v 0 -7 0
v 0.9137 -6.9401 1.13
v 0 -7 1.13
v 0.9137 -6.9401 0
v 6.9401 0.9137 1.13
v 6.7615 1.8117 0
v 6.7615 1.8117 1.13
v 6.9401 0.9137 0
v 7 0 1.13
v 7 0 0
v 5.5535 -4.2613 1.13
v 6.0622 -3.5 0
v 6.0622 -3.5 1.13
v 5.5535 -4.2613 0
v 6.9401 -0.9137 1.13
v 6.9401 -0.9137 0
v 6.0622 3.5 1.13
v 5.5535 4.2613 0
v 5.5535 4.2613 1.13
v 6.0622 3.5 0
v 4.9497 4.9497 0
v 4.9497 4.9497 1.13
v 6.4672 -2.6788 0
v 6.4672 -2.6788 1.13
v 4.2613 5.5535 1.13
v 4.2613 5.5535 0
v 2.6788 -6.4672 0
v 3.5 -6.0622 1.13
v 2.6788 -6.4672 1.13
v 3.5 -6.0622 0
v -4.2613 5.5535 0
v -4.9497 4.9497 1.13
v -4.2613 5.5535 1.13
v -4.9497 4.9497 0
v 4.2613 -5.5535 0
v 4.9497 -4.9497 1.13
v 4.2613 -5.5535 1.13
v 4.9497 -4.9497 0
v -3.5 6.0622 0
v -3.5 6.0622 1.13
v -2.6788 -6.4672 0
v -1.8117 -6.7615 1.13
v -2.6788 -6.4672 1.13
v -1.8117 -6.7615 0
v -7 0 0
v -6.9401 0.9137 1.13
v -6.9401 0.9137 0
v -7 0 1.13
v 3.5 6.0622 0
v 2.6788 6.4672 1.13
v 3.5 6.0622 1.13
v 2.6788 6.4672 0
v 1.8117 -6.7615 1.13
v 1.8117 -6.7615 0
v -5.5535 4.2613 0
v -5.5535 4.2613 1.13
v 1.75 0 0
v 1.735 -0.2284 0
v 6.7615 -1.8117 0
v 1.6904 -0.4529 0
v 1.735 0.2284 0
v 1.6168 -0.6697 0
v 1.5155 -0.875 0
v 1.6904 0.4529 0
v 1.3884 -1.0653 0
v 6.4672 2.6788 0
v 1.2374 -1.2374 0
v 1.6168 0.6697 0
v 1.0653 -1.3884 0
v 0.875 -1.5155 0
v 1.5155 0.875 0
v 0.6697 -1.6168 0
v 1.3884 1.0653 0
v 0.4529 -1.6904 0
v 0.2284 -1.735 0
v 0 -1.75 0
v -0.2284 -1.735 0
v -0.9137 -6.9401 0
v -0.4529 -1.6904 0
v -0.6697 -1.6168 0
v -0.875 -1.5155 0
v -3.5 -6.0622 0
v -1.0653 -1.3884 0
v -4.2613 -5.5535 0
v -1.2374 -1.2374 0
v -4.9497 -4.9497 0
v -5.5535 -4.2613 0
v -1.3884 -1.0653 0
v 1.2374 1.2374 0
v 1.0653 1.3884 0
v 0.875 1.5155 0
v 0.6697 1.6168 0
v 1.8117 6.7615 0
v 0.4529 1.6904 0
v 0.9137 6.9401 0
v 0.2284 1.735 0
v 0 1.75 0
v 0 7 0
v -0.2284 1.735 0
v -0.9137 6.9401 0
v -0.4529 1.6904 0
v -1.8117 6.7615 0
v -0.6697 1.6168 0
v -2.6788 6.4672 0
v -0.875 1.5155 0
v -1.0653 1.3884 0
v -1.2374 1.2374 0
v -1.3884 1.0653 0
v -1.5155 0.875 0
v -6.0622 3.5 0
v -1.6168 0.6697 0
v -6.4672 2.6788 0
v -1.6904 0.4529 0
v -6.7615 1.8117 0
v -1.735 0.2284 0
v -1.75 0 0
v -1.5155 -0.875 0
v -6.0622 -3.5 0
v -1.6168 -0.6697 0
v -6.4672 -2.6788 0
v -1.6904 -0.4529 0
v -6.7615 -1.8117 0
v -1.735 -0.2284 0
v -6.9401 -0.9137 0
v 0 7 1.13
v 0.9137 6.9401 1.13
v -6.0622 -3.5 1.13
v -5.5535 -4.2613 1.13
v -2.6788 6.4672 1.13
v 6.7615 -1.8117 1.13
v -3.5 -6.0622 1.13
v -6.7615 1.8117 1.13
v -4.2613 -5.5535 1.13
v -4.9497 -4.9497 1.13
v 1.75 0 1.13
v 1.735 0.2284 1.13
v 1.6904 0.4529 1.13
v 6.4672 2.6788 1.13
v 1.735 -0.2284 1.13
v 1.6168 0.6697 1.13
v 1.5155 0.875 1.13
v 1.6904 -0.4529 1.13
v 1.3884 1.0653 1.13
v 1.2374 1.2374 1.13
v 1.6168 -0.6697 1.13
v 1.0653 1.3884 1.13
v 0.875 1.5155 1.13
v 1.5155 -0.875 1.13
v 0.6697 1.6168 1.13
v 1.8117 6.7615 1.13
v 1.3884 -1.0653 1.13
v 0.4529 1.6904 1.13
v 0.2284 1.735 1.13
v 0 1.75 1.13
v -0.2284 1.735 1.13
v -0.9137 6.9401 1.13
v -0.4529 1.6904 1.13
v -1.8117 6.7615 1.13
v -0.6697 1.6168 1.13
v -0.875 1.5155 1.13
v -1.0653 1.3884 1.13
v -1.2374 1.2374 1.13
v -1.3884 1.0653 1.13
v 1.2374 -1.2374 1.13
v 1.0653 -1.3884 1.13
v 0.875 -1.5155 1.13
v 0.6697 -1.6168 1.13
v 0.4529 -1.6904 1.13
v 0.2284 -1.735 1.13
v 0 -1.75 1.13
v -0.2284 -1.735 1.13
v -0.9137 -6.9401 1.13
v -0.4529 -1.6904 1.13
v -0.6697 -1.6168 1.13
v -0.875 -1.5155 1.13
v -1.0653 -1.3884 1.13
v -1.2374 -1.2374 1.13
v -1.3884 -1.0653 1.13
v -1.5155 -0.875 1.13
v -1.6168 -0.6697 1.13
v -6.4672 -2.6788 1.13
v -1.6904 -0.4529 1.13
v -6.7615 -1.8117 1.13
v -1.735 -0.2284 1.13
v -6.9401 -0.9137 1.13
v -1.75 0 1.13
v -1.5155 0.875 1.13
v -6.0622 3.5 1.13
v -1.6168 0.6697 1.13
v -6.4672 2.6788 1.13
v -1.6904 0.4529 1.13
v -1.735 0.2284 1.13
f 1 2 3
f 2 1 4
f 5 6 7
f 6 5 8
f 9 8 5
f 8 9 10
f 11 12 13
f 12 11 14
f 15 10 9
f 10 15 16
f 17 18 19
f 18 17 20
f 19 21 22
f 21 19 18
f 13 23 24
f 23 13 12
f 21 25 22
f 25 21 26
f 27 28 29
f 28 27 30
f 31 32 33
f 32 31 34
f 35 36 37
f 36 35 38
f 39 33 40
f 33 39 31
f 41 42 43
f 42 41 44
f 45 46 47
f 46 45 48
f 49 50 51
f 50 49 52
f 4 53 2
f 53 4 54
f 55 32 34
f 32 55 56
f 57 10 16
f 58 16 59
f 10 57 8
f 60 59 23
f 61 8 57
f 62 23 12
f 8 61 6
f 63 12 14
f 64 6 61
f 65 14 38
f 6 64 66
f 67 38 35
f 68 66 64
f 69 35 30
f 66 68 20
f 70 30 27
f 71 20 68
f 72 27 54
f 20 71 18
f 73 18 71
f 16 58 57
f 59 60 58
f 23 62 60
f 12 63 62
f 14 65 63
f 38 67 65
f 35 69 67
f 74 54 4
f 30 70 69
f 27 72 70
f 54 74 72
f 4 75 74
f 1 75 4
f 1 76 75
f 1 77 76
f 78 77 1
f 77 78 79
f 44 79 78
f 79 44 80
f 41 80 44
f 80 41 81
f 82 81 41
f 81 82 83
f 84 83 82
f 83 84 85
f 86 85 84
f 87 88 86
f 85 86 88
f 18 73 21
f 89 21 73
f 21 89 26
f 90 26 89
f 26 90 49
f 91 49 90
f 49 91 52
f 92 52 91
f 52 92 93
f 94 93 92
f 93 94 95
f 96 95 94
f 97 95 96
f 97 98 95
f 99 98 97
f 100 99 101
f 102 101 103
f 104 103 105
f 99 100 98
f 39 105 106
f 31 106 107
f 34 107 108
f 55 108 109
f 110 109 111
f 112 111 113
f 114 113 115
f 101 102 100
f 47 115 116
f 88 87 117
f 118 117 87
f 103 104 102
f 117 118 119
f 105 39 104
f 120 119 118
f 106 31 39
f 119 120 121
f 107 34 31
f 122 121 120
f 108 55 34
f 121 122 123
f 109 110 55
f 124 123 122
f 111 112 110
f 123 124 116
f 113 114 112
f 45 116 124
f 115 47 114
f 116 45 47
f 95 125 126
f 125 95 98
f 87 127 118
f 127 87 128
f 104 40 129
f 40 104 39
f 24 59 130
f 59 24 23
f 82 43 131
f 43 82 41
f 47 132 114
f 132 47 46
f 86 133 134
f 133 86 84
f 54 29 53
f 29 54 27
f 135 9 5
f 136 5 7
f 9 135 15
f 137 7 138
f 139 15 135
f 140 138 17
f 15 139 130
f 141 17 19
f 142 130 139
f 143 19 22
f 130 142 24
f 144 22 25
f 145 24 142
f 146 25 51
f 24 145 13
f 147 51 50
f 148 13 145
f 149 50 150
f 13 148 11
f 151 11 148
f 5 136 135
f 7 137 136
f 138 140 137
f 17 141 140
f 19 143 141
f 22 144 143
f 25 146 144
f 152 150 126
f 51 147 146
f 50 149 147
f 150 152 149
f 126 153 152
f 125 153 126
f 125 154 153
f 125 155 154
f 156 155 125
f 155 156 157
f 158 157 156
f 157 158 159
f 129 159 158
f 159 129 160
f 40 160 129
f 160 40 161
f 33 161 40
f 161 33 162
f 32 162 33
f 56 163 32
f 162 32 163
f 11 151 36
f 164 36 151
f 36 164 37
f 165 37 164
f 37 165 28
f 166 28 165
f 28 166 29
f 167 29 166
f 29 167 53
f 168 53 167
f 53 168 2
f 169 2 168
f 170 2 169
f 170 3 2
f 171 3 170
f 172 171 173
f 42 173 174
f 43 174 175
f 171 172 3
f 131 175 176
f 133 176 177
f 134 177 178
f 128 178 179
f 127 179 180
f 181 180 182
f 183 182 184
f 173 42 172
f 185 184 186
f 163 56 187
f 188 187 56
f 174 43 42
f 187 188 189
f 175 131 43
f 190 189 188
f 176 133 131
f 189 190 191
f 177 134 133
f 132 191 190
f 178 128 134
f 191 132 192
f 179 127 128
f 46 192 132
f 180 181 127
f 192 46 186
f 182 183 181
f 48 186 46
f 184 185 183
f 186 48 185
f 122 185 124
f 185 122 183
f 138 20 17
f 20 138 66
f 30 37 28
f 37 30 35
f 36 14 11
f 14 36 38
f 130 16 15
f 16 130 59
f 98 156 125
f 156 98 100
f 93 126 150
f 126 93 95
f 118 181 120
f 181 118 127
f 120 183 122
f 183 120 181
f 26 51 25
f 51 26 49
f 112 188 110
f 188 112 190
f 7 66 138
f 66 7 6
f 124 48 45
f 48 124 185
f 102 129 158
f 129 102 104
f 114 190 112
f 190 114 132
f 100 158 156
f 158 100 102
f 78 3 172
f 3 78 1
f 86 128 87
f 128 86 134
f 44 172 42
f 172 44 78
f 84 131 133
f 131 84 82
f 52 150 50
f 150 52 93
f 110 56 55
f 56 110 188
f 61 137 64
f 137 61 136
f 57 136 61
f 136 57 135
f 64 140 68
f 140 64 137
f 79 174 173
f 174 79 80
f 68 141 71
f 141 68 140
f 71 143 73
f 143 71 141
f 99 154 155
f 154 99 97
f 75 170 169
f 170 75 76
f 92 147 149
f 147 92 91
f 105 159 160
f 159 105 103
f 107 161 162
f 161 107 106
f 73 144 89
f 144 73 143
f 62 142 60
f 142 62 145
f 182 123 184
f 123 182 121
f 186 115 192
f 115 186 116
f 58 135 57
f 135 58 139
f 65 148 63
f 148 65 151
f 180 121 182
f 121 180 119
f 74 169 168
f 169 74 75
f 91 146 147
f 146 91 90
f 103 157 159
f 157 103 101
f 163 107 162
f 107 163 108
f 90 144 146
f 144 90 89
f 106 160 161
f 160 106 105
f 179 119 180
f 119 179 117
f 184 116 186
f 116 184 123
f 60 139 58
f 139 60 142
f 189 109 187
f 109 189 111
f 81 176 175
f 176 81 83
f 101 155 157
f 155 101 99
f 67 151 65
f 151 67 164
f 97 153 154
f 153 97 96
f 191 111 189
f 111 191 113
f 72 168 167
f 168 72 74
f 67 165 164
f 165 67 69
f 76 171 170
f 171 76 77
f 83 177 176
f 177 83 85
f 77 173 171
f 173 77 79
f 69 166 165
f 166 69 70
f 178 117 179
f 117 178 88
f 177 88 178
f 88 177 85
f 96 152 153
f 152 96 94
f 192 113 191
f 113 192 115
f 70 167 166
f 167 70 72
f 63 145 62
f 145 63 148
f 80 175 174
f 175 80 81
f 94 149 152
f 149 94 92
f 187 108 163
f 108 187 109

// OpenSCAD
// file: parameters.scad
// =============================================================================
// Gen-AX Stacked dual-stator mid-rotor copper-max ultra - WOUND-AWARE (HARD GATE)
// ONE mid dual-face Halbach rotor | TWO wound pancake stators | 18 coils x185 t
// =============================================================================

wire_awg            = 26;
wire_od             = 0.45;
turns               = 185;      // +5 vs Gen-AU 180; 18x185x~0.114 ~ 380 m
fill                = 0.70;
layers_per_face     = 2;
wind_build_axial    = layers_per_face * wire_od * fill;   // 0.63
wind_build_radial   = 3 * wire_od * fill;                 // 0.945

coil_id_r           = 16.5;
coil_od_r           = 60.5;
span_deg            = 34.0;     // 9 stations x 40 deg
former_web          = 1.20;     // print floor LB walls
flange_t            = 0.60;
wall                = 1.2;
slot_w              = 2.4;
mount_hole          = 3.5;
tab_len             = 7.0;

former_bare_h       = former_web + 2 * flange_t;            // 2.40
coil_envelope_h     = former_bare_h + 2 * wind_build_axial; // 3.66

run_clear           = 0.50;
gap_spacer_h        = run_clear + wind_build_axial;         // 1.13
m2m                 = coil_envelope_h + 2 * run_clear;      // 4.66 per gap

coil_stations       = 9;        // per stator; x2 = 18 total
bay_r_in            = coil_id_r - 2.0 - wind_build_radial;
bay_r_out           = coil_od_r + 2.0 + wind_build_radial;
bay_span            = span_deg + 4.0;
bay_offset          = 2.0;
bay_depth           = former_bare_h + wind_build_axial;     // wound sits in bay
stator_back_web     = 2.0;
stator_thick        = bay_depth + stator_back_web;
stator_od           = 156.0;
shaft_clear_stator  = 38.0;
coil_mount_r        = 27.0;

large_pocket_d      = 20.3;
small_pocket_d      = 5.3;
pocket_h            = 5.2;
large_n             = 8;
R_large             = 38.5;     // tighter copper overlap vs AU R=39.0
R_small_inner       = 25.0;
R_small_mid         = 38.5;
R_small_outer       = 55.0;
carrier_od          = 154.0;
mid_carrier_thick   = 12.0;
hub_h               = 10.0;
hub_od              = 30.0;
rotor_b_offset_deg  = 22.5;

shaft_bore          = 8.35;
bearing_d           = 21.85;
bearing_h           = 7.2;
m3_clear            = 3.5;
bolt_r_inner        = 36.0;
bolt_n_inner        = 6;
flange_bolt_r       = 72.0;
flange_bolt_n       = 6;
brace_r             = 68.0;
brace_d             = 4.3;
brace_n             = 4;

spacer_pad_od       = 14.0;
spacer_pad_id       = m3_clear;
endbell_od          = 156.0;
endbell_thick       = 8.0;
endbell_shaft_clear = 10.0;

$fn = 64;
// main file
// Gen-AX gap spacer — h = run_clear + wind_build_axial
include <parameters.scad>;
$fn = 48;
difference() {
    cylinder(d=spacer_pad_od, h=gap_spacer_h);
    translate([0, 0, -0.1]) cylinder(d=spacer_pad_id, h=gap_spacer_h + 0.2);
}
